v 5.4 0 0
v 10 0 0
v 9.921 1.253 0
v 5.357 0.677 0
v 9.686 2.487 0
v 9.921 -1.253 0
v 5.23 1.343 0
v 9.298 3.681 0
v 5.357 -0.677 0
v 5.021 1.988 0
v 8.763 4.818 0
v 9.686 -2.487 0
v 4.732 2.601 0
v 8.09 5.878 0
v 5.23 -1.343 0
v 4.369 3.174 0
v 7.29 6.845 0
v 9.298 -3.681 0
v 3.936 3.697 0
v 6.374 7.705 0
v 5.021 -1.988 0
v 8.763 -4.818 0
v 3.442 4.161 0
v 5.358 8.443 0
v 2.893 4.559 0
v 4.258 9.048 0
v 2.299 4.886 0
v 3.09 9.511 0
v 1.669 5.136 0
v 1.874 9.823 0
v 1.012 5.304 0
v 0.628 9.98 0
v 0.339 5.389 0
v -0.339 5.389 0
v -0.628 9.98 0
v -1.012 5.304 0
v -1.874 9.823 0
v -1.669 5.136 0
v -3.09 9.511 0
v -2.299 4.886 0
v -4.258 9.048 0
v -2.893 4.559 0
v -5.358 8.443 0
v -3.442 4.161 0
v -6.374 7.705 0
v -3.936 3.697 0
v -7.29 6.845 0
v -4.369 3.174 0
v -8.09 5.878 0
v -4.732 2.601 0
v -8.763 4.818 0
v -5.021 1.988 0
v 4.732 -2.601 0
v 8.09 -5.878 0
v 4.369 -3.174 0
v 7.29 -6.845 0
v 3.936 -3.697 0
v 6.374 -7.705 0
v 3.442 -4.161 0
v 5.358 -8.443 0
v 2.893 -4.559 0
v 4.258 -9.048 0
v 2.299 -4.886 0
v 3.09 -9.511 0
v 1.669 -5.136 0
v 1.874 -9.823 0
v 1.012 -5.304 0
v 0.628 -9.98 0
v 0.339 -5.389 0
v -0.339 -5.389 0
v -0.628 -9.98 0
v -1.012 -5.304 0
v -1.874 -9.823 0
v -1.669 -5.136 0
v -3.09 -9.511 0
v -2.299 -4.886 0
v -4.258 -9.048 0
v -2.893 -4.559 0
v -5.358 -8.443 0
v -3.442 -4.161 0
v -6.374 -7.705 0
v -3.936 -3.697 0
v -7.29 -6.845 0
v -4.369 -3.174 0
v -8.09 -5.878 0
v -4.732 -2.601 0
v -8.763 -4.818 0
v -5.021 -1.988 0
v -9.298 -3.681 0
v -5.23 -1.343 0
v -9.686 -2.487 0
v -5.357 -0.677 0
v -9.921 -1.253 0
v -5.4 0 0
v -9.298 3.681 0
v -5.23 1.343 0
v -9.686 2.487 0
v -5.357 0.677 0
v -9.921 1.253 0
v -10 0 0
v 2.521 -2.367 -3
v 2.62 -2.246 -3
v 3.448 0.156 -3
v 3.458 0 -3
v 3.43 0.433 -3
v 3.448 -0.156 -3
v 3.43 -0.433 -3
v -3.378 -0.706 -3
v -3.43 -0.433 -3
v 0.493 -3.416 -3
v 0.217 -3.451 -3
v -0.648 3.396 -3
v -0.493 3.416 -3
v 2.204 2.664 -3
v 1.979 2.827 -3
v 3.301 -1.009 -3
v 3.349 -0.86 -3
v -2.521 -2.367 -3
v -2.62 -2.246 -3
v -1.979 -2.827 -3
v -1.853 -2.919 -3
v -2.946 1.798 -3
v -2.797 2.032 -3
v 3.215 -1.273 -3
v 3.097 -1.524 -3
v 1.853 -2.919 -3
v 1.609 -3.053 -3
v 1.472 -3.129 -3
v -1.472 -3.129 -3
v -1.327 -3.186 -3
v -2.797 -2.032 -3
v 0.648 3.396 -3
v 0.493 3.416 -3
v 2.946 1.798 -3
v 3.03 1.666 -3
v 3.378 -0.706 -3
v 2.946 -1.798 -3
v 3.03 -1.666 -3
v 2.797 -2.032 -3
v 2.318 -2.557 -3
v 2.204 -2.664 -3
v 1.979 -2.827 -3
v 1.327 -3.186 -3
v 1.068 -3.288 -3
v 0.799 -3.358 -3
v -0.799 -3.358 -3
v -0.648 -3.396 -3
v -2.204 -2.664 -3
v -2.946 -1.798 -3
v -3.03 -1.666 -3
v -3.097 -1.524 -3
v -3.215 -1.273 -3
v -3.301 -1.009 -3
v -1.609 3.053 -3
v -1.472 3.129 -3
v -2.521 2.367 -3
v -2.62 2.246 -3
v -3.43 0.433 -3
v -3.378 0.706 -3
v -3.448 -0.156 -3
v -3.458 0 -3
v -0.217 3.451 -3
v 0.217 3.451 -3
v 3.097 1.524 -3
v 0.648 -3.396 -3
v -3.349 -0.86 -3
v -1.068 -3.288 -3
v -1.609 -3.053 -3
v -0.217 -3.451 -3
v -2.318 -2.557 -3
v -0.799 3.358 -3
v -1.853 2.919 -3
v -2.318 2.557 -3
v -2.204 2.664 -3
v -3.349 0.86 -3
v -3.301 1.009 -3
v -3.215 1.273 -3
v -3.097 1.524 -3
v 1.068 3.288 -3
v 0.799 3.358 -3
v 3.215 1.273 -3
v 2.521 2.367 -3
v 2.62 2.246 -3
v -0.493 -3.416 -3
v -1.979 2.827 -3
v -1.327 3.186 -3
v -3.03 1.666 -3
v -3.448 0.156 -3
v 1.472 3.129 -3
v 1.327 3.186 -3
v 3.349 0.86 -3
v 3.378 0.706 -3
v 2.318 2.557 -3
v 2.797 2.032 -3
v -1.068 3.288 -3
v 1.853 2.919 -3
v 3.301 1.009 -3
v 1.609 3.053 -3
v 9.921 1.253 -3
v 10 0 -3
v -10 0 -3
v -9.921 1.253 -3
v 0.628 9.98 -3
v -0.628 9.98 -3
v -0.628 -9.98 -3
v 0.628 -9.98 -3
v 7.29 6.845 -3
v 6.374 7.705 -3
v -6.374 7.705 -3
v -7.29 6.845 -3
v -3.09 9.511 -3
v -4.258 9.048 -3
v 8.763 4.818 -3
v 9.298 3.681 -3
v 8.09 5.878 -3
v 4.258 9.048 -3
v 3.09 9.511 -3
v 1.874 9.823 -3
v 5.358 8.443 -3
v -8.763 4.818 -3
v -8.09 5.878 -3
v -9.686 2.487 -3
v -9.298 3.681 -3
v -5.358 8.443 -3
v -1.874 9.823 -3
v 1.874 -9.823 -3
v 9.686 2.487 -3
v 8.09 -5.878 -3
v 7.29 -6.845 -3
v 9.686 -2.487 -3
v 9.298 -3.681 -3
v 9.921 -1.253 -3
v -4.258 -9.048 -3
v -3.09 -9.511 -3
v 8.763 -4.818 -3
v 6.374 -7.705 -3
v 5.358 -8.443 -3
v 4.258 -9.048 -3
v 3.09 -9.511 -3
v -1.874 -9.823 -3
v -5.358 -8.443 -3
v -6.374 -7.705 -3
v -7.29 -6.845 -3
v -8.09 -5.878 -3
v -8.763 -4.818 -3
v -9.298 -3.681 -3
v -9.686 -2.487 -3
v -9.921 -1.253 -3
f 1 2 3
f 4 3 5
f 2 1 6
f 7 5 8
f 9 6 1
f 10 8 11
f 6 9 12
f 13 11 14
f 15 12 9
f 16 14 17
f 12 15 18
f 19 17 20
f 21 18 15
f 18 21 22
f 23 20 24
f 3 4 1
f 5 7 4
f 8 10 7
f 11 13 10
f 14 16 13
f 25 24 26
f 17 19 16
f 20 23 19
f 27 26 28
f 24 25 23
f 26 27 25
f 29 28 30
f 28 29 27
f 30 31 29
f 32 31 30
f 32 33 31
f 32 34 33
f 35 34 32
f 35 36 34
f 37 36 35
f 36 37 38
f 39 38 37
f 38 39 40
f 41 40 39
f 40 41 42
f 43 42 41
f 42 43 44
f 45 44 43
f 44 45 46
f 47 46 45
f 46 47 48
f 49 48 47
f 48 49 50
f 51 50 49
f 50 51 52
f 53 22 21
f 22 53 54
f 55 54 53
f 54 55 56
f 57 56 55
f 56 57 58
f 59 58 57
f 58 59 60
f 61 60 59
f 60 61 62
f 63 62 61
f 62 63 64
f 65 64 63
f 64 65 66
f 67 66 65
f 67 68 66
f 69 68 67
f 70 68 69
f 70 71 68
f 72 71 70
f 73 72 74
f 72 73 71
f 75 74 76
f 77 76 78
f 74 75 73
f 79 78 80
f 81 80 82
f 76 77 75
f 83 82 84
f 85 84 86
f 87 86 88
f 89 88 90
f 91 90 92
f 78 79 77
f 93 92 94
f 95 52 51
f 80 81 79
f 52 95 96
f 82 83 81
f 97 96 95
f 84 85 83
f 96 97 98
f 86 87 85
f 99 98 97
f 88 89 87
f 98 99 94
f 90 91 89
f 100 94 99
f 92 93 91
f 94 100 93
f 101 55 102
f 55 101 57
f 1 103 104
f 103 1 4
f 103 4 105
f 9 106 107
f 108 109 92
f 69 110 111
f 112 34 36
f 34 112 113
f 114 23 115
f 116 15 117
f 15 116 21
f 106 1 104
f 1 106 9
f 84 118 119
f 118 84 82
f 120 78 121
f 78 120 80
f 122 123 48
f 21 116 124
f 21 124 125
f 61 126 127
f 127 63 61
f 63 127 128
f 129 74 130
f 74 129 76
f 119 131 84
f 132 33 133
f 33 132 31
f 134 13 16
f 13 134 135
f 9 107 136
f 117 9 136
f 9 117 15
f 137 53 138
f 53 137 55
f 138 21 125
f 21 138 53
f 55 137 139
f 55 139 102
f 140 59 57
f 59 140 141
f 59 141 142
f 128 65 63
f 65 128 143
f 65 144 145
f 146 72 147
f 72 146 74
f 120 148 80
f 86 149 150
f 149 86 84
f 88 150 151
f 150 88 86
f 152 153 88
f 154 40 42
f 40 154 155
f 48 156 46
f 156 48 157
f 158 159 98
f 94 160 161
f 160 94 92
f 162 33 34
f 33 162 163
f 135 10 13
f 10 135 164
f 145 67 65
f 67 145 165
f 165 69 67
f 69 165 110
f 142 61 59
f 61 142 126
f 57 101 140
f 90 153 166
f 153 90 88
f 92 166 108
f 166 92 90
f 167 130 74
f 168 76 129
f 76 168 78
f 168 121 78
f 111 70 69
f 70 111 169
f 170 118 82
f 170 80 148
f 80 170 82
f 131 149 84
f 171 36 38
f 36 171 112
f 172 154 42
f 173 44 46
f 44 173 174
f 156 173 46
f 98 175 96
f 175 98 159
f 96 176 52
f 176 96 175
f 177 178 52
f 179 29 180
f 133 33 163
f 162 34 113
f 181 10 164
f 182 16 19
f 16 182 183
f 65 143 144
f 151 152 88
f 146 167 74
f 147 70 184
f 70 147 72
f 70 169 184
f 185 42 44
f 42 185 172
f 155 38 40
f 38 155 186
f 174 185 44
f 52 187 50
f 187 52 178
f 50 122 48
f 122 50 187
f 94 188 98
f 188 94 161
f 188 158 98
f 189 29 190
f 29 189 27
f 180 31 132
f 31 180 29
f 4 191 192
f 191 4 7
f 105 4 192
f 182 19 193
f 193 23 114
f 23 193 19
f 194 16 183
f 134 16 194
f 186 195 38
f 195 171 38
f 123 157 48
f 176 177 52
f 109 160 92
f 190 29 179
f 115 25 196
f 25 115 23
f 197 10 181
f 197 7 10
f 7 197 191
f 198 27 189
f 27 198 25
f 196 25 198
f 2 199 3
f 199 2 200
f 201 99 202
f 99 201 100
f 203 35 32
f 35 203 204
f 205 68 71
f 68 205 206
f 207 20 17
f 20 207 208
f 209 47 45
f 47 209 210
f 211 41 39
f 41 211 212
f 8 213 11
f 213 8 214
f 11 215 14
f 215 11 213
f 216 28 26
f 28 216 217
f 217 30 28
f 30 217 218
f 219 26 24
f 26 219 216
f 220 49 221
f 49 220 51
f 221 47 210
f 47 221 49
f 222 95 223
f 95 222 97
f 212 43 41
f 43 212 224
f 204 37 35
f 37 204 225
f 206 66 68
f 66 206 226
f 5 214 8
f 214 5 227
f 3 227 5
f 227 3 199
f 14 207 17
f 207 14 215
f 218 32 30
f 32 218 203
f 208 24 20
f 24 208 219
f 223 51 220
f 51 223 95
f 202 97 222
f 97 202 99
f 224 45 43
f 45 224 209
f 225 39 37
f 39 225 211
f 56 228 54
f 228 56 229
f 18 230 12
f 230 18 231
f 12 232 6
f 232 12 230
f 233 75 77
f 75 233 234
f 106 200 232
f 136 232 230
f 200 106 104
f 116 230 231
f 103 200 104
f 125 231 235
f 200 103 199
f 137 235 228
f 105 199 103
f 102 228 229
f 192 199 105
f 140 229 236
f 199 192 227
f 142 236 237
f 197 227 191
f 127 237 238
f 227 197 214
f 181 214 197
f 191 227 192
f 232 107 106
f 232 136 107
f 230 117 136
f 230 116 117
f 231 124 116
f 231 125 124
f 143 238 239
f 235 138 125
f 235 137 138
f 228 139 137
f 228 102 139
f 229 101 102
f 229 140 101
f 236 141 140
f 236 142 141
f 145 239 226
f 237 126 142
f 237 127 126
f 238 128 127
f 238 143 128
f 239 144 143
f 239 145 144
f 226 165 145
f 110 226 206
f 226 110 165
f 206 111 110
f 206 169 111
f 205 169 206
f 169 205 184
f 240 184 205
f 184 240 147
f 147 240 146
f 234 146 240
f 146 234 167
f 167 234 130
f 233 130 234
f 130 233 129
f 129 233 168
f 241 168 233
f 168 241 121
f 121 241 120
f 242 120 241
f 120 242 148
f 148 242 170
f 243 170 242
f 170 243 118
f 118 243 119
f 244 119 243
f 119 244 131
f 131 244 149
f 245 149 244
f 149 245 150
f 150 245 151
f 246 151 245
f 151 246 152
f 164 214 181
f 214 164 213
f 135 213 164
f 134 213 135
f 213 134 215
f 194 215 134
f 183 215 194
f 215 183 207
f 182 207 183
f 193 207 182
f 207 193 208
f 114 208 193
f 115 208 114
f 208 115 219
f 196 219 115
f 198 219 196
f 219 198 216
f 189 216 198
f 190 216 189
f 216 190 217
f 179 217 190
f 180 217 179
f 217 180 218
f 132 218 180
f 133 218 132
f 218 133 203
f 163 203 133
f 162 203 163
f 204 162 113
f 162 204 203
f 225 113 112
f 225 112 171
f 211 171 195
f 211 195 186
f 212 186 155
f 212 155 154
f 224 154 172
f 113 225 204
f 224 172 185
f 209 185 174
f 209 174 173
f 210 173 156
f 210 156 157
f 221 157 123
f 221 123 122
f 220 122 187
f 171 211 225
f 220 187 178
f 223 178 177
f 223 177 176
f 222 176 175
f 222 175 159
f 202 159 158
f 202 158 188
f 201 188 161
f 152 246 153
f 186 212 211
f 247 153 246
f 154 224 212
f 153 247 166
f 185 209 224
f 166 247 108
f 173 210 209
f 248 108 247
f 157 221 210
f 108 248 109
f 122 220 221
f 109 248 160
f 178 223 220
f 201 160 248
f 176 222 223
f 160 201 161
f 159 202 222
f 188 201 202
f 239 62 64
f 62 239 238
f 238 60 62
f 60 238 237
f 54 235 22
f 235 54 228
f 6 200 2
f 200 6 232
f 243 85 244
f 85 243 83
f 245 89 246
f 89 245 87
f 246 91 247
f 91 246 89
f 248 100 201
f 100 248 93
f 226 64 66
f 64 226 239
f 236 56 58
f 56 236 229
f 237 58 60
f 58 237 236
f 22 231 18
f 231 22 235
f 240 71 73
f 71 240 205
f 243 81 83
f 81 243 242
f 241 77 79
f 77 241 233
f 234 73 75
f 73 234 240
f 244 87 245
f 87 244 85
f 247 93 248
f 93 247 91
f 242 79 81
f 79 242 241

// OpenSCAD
$fn = 50;


difference() {
	union() {
		translate(v = [0, 0, -3.0000000000]) {
			cylinder(h = 3, r = 10.0000000000);
		}
		cylinder(h = 0, r = 16.0000000000);
	}
	union() {
		translate(v = [0, 0, 0]) {
			rotate(a = [0, 0, 0]) {
				difference() {
					union() {
						#translate(v = [0, 0, -3.0000000000]) {
							cylinder(h = 3, r = 2.6000000000);
						}
						#translate(v = [0, 0, -3.9000000000]) {
							cylinder(h = 3.9000000000, r = 10.0000000000, r1 = 2.8750000000, r2 = 5.4000000000);
						}
						#translate(v = [0, 0, -3.0000000000]) {
							cylinder(h = 3, r = 2.8750000000);
						}
						#translate(v = [0, 0, -3.0000000000]) {
							cylinder(h = 3, r = 2.6000000000);
						}
					}
					union();
				}
			}
		}
	}
}
